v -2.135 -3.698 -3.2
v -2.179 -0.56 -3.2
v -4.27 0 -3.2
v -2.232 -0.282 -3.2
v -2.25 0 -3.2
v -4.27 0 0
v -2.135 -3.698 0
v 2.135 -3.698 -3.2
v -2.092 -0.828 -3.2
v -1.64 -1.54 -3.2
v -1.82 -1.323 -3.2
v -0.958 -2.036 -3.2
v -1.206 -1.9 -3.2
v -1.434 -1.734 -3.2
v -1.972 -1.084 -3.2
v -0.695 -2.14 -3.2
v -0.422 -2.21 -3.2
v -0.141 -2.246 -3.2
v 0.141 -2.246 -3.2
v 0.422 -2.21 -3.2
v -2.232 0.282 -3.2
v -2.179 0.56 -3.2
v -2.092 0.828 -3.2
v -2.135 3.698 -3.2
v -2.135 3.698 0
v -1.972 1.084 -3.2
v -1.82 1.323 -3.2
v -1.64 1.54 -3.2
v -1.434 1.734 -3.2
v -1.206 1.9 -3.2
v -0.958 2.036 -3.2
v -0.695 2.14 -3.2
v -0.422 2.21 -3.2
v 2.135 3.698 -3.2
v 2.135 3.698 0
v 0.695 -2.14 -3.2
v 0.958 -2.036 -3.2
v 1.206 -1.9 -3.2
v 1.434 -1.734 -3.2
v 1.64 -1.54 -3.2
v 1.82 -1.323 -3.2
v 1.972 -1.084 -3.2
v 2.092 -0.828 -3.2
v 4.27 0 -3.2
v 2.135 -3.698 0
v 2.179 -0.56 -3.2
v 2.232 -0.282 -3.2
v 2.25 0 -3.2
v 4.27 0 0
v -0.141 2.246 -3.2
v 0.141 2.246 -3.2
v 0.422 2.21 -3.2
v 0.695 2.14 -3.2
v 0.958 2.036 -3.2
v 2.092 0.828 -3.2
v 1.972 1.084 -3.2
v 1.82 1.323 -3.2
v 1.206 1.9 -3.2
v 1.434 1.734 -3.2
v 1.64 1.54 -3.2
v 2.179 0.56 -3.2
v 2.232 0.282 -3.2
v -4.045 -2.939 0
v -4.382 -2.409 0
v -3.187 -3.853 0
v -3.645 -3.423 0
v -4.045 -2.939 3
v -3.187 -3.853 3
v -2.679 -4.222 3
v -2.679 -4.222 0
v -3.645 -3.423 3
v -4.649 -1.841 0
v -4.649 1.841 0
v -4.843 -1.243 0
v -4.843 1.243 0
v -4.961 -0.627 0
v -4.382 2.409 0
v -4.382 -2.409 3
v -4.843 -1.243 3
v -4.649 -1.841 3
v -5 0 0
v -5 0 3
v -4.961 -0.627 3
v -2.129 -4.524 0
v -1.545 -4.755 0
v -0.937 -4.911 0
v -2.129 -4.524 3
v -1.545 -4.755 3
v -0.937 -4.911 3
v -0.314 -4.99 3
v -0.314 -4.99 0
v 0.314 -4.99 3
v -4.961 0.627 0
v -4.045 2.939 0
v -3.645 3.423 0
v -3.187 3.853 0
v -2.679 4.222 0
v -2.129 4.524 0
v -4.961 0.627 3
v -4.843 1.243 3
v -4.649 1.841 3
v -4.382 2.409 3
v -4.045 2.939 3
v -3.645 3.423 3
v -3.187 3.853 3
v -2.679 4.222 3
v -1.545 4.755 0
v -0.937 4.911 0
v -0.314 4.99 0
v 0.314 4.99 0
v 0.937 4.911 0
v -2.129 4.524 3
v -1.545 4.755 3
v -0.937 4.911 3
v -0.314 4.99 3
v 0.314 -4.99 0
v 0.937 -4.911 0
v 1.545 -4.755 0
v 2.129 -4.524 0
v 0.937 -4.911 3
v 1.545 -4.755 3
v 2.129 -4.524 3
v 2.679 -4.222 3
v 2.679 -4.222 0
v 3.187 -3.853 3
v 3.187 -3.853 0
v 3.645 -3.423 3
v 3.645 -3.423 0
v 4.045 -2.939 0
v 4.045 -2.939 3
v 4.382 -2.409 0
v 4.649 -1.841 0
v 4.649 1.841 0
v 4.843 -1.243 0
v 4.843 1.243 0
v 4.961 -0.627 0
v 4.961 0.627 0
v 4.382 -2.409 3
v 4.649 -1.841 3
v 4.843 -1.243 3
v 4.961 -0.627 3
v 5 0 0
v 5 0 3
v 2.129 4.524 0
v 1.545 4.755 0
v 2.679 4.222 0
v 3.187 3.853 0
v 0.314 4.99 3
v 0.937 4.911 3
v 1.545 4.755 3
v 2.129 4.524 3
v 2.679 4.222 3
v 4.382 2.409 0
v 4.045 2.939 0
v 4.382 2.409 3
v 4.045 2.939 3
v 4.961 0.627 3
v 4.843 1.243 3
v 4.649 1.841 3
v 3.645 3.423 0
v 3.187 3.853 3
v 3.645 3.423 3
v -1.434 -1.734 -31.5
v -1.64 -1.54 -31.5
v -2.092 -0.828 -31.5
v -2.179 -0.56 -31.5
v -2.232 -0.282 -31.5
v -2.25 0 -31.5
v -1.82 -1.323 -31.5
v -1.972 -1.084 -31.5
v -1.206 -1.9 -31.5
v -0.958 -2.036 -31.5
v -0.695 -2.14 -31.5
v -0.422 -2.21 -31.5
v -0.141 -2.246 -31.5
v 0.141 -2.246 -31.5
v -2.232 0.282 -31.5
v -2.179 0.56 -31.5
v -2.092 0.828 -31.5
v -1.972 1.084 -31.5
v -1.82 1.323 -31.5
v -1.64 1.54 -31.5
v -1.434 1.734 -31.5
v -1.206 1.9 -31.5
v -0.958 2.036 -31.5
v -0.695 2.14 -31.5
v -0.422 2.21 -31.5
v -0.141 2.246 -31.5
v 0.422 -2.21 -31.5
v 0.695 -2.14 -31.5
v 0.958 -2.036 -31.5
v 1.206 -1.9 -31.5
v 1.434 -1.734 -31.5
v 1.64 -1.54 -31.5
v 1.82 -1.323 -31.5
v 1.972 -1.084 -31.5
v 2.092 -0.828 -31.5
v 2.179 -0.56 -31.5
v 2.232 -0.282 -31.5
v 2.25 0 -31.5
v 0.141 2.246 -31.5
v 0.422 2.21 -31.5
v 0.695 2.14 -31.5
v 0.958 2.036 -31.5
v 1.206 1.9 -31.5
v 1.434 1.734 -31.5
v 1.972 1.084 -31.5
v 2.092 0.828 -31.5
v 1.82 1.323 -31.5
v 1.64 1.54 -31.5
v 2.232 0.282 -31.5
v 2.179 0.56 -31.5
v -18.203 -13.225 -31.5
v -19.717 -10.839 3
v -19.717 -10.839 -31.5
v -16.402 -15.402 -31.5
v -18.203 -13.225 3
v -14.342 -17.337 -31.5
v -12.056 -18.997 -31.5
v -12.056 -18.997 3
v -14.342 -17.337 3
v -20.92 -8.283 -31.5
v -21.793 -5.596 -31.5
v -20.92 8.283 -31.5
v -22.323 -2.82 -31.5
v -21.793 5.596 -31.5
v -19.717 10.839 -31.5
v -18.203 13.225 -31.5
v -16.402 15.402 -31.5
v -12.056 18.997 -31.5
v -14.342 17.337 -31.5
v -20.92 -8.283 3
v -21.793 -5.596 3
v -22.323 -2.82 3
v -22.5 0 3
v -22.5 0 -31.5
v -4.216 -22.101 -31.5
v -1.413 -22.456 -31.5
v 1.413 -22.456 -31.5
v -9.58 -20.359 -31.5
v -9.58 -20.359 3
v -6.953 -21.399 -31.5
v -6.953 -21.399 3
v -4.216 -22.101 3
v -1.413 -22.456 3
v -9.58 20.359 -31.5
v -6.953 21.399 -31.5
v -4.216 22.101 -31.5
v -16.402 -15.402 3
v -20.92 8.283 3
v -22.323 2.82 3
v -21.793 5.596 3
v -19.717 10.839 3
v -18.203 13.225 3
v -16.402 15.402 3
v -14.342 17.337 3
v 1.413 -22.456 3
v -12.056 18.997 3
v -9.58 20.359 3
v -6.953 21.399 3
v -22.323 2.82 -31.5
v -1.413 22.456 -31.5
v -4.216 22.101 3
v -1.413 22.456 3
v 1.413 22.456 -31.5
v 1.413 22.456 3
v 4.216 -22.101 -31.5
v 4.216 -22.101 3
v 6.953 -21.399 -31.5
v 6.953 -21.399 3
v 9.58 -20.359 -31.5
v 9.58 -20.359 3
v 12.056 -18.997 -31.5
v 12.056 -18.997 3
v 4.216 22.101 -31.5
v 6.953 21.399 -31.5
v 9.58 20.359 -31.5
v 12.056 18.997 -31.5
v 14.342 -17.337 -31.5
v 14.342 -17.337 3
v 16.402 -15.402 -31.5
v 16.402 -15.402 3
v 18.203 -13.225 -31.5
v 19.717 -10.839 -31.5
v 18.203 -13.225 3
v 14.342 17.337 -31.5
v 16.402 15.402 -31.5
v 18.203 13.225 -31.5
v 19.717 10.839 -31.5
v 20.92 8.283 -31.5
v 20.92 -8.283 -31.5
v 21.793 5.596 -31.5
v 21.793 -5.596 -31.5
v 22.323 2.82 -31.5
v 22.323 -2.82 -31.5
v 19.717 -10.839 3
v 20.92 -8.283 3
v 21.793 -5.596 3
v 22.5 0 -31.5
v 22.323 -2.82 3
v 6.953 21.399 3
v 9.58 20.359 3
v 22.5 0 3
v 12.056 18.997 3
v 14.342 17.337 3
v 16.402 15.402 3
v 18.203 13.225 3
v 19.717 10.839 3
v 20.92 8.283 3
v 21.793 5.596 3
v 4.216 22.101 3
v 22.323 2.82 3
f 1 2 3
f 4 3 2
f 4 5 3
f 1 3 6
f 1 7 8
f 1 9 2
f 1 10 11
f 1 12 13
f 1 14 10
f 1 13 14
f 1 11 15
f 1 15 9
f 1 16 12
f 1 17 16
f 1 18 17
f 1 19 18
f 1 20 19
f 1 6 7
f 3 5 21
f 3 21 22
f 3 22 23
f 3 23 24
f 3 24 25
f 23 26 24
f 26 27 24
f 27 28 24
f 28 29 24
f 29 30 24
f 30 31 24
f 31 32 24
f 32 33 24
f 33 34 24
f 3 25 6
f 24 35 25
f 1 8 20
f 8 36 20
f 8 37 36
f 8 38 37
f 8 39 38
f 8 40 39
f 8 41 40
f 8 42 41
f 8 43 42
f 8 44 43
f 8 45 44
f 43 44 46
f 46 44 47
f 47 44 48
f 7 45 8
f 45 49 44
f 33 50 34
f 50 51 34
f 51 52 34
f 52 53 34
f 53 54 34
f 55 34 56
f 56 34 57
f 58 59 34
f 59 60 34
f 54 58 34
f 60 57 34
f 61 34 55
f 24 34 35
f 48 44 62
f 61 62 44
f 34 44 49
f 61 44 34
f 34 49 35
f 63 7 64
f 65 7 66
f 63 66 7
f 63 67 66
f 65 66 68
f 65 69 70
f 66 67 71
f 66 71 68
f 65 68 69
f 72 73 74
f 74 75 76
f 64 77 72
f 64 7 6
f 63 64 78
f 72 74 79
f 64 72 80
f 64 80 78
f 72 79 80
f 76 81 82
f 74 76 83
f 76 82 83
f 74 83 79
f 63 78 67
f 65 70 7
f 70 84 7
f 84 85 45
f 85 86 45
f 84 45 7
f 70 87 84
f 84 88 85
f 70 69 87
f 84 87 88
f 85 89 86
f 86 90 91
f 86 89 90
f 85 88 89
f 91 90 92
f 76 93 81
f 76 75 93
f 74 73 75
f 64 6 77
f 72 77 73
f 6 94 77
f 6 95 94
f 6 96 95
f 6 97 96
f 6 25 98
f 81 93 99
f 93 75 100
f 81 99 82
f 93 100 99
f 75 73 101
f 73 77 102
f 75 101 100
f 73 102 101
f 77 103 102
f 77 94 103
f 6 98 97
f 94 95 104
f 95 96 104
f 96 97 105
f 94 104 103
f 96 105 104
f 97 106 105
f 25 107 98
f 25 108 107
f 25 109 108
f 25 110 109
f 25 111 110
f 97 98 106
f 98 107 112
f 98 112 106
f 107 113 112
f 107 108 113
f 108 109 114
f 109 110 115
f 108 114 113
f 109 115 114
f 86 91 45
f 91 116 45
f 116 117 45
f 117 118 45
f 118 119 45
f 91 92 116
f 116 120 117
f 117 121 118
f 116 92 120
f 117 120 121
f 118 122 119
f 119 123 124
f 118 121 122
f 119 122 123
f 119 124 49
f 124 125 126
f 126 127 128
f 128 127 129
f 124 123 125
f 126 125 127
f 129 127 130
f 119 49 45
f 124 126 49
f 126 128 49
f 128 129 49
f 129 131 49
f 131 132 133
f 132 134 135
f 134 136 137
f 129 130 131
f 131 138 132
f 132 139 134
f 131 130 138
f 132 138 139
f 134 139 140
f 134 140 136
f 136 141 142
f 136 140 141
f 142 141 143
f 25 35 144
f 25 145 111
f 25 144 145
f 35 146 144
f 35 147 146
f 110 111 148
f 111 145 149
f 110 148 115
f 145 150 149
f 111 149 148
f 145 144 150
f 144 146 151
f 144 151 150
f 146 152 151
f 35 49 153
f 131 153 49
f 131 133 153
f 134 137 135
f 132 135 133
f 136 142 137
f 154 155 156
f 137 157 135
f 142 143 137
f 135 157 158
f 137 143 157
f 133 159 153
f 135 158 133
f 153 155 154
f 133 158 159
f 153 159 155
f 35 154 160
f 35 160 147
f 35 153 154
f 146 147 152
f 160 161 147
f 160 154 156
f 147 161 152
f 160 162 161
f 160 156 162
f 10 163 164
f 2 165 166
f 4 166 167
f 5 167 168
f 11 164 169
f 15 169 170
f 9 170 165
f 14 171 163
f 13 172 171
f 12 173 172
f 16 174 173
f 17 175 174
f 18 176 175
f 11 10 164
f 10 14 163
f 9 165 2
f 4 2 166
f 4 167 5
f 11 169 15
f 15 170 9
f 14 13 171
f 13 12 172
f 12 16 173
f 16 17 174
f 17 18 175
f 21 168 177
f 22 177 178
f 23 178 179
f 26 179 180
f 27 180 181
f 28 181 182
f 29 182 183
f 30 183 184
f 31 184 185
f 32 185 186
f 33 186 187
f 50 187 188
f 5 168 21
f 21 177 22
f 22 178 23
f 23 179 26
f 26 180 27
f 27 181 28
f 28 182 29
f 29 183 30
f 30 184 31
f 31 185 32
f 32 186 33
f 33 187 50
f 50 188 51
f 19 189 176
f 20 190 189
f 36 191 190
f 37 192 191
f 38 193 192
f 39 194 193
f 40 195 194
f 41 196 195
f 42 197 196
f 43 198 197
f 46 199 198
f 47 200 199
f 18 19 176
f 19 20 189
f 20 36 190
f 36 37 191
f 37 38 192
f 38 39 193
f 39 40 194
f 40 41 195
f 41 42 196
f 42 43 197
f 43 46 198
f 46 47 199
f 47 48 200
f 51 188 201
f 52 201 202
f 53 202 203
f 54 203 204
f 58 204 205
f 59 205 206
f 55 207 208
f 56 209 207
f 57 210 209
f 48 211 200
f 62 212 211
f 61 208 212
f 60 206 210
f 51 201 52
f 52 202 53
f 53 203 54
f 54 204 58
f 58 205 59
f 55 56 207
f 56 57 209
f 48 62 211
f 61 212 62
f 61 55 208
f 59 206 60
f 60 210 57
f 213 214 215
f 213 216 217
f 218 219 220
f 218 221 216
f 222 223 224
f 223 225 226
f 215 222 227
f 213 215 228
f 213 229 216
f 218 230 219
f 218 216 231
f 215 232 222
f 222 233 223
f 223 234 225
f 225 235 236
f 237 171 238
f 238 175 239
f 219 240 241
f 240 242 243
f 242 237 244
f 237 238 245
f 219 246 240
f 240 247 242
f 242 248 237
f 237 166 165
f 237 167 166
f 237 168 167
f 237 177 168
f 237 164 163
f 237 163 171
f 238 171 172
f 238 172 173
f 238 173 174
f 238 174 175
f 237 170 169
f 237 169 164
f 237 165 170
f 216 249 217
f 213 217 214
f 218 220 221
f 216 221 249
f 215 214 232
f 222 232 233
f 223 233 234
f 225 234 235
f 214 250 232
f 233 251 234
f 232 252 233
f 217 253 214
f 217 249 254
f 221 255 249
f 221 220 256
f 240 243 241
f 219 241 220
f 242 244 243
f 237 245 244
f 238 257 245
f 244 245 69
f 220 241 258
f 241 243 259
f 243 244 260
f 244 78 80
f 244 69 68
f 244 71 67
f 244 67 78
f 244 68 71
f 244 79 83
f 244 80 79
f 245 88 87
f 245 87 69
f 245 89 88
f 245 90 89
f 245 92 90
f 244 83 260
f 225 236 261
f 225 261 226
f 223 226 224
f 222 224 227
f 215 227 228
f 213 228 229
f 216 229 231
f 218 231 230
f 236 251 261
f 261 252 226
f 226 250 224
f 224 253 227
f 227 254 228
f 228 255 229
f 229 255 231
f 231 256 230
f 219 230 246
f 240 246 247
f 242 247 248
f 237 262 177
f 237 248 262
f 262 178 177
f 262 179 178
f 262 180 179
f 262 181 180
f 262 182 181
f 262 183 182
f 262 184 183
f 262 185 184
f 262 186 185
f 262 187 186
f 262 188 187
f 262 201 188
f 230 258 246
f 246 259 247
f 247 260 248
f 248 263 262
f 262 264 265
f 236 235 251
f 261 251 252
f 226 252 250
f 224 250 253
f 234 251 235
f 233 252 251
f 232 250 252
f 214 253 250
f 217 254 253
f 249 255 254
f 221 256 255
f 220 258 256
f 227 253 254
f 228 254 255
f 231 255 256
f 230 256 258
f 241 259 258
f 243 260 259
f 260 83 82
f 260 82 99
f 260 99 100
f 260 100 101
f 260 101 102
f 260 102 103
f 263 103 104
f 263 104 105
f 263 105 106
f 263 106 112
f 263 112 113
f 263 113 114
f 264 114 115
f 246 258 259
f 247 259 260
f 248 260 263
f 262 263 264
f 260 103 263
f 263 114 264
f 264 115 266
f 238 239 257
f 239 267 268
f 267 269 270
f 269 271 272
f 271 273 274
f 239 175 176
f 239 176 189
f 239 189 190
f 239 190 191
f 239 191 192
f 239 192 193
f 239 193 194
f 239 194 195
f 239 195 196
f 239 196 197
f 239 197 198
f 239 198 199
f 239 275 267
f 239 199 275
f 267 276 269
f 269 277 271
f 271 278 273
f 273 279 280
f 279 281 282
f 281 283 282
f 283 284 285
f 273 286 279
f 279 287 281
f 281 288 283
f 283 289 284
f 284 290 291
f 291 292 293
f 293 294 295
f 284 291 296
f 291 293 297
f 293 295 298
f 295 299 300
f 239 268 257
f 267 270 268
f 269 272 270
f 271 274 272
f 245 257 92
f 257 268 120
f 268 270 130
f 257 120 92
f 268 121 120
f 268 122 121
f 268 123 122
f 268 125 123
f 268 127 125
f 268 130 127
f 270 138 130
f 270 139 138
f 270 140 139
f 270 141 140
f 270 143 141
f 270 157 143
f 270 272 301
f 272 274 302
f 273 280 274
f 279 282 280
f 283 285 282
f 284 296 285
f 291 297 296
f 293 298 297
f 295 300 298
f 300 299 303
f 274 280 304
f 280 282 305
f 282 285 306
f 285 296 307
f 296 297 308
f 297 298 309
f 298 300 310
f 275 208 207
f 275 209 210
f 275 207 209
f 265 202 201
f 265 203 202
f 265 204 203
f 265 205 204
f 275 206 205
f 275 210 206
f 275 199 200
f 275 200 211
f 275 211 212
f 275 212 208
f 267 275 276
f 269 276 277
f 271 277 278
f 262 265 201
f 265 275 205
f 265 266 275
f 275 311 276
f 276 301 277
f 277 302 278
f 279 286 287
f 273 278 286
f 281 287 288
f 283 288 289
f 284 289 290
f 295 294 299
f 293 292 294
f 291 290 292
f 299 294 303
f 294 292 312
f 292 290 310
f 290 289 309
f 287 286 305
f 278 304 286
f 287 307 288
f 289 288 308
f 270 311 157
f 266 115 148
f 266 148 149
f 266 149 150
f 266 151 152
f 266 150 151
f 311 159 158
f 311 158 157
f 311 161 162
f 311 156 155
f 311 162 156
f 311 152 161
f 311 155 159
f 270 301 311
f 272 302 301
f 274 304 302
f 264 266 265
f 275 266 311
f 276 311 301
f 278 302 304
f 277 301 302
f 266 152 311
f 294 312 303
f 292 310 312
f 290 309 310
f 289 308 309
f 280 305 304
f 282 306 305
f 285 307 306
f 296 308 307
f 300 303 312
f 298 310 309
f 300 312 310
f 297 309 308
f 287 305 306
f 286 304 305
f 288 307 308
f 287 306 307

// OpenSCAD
$fn = 50;


difference() {
	union() {
		translate(v = [0, 0, -31.5000000000]) {
			cylinder(h = 34.5000000000, r = 22.5000000000);
		}
	}
	union() {
		translate(v = [0, 0, 0]) {
			rotate(a = [0, 0, 0]) {
				difference() {
					union() {
						translate(v = [0, 0, -3.2000000000]) {
							linear_extrude(height = 3.2000000000) {
								polygon(points = [[4.2698000000, 0.0000000000], [2.1349000000, 3.6977552691], [-2.1349000000, 3.6977552691], [-4.2698000000, 0.0000000000], [-2.1349000000, -3.6977552691], [2.1349000000, -3.6977552691]]);
							}
						}
					}
					union();
				}
			}
		}
		#cylinder(h = 3, r = 5.0000000000);
		#translate(v = [0, 0, -100.0000000000]) {
			cylinder(h = 200, r = 2.2500000000);
		}
	}
}
